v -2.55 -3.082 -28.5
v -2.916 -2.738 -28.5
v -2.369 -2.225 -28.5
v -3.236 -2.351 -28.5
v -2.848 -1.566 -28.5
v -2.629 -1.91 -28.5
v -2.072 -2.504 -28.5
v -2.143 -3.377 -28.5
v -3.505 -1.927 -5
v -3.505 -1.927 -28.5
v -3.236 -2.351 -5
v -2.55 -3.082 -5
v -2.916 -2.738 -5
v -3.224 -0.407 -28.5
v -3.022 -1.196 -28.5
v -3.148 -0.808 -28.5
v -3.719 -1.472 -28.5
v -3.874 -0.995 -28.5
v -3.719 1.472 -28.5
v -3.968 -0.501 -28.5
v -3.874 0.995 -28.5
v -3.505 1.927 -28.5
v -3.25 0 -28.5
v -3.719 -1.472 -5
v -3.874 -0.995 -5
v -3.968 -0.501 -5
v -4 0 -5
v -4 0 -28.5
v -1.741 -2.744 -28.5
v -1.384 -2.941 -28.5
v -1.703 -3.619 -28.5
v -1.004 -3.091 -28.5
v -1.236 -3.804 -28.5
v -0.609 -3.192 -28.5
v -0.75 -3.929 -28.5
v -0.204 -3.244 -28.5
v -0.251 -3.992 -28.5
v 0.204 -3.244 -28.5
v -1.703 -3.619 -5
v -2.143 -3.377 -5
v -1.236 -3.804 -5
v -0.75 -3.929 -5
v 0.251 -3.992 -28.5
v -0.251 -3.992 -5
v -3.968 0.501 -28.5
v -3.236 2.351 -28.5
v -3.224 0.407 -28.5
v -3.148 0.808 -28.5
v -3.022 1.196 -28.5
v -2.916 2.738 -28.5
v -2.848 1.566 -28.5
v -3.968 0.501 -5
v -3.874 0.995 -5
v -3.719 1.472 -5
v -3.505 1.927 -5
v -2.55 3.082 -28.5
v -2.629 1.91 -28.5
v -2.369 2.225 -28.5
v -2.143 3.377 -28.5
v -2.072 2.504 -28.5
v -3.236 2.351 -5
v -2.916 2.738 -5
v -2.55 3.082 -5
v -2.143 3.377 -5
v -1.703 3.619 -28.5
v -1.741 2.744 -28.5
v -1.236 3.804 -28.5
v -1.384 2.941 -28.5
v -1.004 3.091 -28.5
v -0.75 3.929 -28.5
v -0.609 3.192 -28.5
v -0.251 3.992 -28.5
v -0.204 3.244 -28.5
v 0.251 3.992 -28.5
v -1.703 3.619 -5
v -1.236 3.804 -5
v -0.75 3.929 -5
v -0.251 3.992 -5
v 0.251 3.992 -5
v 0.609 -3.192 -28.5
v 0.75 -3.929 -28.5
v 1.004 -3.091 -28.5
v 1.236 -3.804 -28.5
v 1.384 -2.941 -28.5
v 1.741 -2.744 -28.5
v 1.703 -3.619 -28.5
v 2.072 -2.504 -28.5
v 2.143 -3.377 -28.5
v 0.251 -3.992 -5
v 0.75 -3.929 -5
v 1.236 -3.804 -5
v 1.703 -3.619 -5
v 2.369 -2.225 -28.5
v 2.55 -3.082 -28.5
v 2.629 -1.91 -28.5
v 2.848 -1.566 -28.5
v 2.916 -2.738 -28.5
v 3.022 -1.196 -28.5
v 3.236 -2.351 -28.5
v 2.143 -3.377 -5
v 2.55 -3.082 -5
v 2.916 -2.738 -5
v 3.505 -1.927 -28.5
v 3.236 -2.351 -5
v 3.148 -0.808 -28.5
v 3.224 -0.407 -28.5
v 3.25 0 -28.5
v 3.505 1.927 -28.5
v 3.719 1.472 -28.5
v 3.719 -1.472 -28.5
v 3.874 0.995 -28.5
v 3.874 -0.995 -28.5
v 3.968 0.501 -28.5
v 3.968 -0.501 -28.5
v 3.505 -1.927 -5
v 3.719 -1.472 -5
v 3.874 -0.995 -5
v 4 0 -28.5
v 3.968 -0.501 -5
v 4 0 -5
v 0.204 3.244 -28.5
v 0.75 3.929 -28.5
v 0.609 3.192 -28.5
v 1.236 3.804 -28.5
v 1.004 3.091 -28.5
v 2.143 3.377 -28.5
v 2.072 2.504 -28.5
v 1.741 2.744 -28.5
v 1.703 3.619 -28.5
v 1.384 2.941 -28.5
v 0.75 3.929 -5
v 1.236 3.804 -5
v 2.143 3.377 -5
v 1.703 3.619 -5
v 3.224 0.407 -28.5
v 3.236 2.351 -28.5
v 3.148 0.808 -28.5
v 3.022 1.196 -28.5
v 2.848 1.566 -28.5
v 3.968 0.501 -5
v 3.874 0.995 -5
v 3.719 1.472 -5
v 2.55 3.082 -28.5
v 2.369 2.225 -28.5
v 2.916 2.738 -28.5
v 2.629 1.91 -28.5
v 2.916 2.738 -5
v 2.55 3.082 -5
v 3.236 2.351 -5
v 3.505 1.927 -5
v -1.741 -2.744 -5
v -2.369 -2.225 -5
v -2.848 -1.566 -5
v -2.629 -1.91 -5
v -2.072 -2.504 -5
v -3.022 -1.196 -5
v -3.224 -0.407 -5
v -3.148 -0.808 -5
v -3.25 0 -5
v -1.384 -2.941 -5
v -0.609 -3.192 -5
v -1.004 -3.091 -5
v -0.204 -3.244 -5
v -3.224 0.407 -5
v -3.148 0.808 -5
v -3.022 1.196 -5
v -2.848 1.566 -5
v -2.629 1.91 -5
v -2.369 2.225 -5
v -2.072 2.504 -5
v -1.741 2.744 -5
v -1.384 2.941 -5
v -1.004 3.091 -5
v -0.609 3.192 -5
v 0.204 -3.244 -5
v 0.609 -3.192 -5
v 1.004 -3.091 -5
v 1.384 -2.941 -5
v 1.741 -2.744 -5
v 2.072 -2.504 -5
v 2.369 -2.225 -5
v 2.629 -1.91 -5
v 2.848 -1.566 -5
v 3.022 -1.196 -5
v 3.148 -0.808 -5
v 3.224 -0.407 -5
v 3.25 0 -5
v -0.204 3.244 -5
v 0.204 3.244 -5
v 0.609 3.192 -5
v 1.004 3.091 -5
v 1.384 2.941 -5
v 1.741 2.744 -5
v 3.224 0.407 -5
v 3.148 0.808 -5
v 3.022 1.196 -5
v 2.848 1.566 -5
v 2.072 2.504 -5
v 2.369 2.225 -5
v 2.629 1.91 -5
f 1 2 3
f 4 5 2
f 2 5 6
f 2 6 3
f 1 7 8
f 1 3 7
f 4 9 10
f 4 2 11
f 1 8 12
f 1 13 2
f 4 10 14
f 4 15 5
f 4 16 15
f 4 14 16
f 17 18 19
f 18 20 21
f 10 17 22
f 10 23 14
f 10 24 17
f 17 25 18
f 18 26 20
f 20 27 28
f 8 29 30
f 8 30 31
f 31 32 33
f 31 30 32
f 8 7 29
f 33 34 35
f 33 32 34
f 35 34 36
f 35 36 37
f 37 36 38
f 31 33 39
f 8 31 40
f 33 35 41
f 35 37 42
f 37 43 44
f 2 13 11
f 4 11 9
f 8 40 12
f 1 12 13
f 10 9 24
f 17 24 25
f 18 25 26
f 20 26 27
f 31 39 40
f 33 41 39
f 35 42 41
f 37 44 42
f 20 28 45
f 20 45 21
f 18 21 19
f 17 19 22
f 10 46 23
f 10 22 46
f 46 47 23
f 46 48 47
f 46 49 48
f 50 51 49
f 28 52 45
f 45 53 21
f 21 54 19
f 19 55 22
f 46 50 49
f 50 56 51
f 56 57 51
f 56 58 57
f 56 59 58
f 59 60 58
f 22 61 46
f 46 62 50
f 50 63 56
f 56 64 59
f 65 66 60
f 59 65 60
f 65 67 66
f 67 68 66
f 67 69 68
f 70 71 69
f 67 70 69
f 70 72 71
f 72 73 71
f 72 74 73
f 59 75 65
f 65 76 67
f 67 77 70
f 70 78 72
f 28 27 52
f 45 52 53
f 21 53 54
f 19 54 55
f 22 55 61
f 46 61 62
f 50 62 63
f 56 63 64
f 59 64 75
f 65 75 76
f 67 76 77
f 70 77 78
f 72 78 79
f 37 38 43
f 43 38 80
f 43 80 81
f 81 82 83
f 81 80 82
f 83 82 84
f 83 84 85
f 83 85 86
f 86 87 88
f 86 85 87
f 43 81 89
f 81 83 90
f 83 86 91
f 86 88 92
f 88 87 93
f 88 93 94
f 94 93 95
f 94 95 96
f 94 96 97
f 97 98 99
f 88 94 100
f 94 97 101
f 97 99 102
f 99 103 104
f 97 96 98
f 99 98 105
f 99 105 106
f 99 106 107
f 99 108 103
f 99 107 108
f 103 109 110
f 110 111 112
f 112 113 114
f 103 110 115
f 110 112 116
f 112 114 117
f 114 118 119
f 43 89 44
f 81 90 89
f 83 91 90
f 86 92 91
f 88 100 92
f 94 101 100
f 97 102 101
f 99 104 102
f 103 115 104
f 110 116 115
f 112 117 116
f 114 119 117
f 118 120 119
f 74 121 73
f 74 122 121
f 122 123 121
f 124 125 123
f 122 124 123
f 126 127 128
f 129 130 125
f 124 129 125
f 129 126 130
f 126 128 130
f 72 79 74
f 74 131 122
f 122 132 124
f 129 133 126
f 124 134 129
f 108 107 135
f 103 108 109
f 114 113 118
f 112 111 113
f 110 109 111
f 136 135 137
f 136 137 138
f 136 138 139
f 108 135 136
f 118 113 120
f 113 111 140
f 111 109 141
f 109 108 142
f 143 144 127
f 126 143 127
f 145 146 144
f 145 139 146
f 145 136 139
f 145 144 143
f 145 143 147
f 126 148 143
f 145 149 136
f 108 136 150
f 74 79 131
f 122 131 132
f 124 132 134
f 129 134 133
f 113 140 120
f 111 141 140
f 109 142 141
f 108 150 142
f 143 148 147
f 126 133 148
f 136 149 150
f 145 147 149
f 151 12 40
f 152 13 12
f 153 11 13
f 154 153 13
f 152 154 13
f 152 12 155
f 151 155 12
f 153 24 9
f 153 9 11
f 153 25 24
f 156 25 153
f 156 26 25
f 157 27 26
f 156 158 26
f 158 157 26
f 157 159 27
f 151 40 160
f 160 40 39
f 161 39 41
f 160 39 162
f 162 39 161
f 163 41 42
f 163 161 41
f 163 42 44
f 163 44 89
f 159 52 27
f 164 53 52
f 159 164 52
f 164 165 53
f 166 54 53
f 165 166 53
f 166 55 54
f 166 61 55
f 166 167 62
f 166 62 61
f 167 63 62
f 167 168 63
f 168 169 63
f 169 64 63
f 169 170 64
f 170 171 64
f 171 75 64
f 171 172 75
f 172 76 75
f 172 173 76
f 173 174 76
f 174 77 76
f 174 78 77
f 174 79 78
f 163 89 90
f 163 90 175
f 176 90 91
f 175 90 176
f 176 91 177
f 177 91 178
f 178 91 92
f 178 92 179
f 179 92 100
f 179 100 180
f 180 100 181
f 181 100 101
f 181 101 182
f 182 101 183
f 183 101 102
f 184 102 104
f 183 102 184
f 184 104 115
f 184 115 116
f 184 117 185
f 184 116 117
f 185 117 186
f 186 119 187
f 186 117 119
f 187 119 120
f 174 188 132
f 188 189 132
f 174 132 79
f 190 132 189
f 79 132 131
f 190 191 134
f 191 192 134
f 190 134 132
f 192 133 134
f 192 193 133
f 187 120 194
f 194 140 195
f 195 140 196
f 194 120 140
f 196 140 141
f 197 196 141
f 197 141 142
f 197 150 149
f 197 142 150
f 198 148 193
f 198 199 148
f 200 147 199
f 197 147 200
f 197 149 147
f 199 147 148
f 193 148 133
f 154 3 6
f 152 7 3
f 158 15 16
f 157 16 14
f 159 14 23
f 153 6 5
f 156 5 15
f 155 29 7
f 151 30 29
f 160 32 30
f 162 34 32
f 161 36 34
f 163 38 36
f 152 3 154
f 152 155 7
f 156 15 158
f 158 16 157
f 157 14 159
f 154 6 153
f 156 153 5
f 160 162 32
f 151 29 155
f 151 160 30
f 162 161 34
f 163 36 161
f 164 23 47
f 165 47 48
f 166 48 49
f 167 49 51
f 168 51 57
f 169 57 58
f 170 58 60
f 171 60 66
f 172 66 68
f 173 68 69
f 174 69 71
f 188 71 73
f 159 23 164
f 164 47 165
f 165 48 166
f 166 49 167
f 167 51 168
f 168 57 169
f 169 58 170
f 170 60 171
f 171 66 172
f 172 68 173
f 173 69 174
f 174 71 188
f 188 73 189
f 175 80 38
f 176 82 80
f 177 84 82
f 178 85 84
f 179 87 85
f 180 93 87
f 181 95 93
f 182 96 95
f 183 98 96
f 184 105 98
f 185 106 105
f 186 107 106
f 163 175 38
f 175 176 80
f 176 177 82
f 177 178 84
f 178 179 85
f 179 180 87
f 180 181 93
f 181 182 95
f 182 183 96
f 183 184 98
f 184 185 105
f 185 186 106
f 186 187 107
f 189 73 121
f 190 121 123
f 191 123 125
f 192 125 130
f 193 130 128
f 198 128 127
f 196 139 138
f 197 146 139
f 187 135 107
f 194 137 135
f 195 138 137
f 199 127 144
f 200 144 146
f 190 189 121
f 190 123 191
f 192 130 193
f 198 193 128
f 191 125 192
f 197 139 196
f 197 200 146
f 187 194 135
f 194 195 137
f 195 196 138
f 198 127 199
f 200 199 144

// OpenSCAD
$fn = 50;

difference() {
	union() {
		translate(v = [0, 0, -28.5]) {
			cylinder(h = 31.5, r = 4.0);
		}
		#translate(v = [0, 0, -30.0]) {
			cylinder(h = 30, r = 2.875);
		}
	}
	union() {
		translate(v = [0, 0, 0]) {
			rotate(a = [0, 0, 0]) {
				difference() {
					union() {
						translate(v = [0, 0, -5]) {
							linear_extrude(height = 5) {
								polygon(points = [[5.914249999999999, 0.0], [2.957125, 5.1218907443321156], [-2.9571249999999982, 5.1218907443321156], [-5.914249999999999, 7.242867331857232e-16], [-2.9571250000000022, -5.121890744332115], [2.9571249999999956, -5.121890744332118]]);
							}
						}
					}
					union();
				}
			}
		}
		#cylinder(h = 3, r = 6.25);
		#translate(v = [0, 0, -100.0]) {
			cylinder(h = 200, r = 3.25);
		}
	}
}
